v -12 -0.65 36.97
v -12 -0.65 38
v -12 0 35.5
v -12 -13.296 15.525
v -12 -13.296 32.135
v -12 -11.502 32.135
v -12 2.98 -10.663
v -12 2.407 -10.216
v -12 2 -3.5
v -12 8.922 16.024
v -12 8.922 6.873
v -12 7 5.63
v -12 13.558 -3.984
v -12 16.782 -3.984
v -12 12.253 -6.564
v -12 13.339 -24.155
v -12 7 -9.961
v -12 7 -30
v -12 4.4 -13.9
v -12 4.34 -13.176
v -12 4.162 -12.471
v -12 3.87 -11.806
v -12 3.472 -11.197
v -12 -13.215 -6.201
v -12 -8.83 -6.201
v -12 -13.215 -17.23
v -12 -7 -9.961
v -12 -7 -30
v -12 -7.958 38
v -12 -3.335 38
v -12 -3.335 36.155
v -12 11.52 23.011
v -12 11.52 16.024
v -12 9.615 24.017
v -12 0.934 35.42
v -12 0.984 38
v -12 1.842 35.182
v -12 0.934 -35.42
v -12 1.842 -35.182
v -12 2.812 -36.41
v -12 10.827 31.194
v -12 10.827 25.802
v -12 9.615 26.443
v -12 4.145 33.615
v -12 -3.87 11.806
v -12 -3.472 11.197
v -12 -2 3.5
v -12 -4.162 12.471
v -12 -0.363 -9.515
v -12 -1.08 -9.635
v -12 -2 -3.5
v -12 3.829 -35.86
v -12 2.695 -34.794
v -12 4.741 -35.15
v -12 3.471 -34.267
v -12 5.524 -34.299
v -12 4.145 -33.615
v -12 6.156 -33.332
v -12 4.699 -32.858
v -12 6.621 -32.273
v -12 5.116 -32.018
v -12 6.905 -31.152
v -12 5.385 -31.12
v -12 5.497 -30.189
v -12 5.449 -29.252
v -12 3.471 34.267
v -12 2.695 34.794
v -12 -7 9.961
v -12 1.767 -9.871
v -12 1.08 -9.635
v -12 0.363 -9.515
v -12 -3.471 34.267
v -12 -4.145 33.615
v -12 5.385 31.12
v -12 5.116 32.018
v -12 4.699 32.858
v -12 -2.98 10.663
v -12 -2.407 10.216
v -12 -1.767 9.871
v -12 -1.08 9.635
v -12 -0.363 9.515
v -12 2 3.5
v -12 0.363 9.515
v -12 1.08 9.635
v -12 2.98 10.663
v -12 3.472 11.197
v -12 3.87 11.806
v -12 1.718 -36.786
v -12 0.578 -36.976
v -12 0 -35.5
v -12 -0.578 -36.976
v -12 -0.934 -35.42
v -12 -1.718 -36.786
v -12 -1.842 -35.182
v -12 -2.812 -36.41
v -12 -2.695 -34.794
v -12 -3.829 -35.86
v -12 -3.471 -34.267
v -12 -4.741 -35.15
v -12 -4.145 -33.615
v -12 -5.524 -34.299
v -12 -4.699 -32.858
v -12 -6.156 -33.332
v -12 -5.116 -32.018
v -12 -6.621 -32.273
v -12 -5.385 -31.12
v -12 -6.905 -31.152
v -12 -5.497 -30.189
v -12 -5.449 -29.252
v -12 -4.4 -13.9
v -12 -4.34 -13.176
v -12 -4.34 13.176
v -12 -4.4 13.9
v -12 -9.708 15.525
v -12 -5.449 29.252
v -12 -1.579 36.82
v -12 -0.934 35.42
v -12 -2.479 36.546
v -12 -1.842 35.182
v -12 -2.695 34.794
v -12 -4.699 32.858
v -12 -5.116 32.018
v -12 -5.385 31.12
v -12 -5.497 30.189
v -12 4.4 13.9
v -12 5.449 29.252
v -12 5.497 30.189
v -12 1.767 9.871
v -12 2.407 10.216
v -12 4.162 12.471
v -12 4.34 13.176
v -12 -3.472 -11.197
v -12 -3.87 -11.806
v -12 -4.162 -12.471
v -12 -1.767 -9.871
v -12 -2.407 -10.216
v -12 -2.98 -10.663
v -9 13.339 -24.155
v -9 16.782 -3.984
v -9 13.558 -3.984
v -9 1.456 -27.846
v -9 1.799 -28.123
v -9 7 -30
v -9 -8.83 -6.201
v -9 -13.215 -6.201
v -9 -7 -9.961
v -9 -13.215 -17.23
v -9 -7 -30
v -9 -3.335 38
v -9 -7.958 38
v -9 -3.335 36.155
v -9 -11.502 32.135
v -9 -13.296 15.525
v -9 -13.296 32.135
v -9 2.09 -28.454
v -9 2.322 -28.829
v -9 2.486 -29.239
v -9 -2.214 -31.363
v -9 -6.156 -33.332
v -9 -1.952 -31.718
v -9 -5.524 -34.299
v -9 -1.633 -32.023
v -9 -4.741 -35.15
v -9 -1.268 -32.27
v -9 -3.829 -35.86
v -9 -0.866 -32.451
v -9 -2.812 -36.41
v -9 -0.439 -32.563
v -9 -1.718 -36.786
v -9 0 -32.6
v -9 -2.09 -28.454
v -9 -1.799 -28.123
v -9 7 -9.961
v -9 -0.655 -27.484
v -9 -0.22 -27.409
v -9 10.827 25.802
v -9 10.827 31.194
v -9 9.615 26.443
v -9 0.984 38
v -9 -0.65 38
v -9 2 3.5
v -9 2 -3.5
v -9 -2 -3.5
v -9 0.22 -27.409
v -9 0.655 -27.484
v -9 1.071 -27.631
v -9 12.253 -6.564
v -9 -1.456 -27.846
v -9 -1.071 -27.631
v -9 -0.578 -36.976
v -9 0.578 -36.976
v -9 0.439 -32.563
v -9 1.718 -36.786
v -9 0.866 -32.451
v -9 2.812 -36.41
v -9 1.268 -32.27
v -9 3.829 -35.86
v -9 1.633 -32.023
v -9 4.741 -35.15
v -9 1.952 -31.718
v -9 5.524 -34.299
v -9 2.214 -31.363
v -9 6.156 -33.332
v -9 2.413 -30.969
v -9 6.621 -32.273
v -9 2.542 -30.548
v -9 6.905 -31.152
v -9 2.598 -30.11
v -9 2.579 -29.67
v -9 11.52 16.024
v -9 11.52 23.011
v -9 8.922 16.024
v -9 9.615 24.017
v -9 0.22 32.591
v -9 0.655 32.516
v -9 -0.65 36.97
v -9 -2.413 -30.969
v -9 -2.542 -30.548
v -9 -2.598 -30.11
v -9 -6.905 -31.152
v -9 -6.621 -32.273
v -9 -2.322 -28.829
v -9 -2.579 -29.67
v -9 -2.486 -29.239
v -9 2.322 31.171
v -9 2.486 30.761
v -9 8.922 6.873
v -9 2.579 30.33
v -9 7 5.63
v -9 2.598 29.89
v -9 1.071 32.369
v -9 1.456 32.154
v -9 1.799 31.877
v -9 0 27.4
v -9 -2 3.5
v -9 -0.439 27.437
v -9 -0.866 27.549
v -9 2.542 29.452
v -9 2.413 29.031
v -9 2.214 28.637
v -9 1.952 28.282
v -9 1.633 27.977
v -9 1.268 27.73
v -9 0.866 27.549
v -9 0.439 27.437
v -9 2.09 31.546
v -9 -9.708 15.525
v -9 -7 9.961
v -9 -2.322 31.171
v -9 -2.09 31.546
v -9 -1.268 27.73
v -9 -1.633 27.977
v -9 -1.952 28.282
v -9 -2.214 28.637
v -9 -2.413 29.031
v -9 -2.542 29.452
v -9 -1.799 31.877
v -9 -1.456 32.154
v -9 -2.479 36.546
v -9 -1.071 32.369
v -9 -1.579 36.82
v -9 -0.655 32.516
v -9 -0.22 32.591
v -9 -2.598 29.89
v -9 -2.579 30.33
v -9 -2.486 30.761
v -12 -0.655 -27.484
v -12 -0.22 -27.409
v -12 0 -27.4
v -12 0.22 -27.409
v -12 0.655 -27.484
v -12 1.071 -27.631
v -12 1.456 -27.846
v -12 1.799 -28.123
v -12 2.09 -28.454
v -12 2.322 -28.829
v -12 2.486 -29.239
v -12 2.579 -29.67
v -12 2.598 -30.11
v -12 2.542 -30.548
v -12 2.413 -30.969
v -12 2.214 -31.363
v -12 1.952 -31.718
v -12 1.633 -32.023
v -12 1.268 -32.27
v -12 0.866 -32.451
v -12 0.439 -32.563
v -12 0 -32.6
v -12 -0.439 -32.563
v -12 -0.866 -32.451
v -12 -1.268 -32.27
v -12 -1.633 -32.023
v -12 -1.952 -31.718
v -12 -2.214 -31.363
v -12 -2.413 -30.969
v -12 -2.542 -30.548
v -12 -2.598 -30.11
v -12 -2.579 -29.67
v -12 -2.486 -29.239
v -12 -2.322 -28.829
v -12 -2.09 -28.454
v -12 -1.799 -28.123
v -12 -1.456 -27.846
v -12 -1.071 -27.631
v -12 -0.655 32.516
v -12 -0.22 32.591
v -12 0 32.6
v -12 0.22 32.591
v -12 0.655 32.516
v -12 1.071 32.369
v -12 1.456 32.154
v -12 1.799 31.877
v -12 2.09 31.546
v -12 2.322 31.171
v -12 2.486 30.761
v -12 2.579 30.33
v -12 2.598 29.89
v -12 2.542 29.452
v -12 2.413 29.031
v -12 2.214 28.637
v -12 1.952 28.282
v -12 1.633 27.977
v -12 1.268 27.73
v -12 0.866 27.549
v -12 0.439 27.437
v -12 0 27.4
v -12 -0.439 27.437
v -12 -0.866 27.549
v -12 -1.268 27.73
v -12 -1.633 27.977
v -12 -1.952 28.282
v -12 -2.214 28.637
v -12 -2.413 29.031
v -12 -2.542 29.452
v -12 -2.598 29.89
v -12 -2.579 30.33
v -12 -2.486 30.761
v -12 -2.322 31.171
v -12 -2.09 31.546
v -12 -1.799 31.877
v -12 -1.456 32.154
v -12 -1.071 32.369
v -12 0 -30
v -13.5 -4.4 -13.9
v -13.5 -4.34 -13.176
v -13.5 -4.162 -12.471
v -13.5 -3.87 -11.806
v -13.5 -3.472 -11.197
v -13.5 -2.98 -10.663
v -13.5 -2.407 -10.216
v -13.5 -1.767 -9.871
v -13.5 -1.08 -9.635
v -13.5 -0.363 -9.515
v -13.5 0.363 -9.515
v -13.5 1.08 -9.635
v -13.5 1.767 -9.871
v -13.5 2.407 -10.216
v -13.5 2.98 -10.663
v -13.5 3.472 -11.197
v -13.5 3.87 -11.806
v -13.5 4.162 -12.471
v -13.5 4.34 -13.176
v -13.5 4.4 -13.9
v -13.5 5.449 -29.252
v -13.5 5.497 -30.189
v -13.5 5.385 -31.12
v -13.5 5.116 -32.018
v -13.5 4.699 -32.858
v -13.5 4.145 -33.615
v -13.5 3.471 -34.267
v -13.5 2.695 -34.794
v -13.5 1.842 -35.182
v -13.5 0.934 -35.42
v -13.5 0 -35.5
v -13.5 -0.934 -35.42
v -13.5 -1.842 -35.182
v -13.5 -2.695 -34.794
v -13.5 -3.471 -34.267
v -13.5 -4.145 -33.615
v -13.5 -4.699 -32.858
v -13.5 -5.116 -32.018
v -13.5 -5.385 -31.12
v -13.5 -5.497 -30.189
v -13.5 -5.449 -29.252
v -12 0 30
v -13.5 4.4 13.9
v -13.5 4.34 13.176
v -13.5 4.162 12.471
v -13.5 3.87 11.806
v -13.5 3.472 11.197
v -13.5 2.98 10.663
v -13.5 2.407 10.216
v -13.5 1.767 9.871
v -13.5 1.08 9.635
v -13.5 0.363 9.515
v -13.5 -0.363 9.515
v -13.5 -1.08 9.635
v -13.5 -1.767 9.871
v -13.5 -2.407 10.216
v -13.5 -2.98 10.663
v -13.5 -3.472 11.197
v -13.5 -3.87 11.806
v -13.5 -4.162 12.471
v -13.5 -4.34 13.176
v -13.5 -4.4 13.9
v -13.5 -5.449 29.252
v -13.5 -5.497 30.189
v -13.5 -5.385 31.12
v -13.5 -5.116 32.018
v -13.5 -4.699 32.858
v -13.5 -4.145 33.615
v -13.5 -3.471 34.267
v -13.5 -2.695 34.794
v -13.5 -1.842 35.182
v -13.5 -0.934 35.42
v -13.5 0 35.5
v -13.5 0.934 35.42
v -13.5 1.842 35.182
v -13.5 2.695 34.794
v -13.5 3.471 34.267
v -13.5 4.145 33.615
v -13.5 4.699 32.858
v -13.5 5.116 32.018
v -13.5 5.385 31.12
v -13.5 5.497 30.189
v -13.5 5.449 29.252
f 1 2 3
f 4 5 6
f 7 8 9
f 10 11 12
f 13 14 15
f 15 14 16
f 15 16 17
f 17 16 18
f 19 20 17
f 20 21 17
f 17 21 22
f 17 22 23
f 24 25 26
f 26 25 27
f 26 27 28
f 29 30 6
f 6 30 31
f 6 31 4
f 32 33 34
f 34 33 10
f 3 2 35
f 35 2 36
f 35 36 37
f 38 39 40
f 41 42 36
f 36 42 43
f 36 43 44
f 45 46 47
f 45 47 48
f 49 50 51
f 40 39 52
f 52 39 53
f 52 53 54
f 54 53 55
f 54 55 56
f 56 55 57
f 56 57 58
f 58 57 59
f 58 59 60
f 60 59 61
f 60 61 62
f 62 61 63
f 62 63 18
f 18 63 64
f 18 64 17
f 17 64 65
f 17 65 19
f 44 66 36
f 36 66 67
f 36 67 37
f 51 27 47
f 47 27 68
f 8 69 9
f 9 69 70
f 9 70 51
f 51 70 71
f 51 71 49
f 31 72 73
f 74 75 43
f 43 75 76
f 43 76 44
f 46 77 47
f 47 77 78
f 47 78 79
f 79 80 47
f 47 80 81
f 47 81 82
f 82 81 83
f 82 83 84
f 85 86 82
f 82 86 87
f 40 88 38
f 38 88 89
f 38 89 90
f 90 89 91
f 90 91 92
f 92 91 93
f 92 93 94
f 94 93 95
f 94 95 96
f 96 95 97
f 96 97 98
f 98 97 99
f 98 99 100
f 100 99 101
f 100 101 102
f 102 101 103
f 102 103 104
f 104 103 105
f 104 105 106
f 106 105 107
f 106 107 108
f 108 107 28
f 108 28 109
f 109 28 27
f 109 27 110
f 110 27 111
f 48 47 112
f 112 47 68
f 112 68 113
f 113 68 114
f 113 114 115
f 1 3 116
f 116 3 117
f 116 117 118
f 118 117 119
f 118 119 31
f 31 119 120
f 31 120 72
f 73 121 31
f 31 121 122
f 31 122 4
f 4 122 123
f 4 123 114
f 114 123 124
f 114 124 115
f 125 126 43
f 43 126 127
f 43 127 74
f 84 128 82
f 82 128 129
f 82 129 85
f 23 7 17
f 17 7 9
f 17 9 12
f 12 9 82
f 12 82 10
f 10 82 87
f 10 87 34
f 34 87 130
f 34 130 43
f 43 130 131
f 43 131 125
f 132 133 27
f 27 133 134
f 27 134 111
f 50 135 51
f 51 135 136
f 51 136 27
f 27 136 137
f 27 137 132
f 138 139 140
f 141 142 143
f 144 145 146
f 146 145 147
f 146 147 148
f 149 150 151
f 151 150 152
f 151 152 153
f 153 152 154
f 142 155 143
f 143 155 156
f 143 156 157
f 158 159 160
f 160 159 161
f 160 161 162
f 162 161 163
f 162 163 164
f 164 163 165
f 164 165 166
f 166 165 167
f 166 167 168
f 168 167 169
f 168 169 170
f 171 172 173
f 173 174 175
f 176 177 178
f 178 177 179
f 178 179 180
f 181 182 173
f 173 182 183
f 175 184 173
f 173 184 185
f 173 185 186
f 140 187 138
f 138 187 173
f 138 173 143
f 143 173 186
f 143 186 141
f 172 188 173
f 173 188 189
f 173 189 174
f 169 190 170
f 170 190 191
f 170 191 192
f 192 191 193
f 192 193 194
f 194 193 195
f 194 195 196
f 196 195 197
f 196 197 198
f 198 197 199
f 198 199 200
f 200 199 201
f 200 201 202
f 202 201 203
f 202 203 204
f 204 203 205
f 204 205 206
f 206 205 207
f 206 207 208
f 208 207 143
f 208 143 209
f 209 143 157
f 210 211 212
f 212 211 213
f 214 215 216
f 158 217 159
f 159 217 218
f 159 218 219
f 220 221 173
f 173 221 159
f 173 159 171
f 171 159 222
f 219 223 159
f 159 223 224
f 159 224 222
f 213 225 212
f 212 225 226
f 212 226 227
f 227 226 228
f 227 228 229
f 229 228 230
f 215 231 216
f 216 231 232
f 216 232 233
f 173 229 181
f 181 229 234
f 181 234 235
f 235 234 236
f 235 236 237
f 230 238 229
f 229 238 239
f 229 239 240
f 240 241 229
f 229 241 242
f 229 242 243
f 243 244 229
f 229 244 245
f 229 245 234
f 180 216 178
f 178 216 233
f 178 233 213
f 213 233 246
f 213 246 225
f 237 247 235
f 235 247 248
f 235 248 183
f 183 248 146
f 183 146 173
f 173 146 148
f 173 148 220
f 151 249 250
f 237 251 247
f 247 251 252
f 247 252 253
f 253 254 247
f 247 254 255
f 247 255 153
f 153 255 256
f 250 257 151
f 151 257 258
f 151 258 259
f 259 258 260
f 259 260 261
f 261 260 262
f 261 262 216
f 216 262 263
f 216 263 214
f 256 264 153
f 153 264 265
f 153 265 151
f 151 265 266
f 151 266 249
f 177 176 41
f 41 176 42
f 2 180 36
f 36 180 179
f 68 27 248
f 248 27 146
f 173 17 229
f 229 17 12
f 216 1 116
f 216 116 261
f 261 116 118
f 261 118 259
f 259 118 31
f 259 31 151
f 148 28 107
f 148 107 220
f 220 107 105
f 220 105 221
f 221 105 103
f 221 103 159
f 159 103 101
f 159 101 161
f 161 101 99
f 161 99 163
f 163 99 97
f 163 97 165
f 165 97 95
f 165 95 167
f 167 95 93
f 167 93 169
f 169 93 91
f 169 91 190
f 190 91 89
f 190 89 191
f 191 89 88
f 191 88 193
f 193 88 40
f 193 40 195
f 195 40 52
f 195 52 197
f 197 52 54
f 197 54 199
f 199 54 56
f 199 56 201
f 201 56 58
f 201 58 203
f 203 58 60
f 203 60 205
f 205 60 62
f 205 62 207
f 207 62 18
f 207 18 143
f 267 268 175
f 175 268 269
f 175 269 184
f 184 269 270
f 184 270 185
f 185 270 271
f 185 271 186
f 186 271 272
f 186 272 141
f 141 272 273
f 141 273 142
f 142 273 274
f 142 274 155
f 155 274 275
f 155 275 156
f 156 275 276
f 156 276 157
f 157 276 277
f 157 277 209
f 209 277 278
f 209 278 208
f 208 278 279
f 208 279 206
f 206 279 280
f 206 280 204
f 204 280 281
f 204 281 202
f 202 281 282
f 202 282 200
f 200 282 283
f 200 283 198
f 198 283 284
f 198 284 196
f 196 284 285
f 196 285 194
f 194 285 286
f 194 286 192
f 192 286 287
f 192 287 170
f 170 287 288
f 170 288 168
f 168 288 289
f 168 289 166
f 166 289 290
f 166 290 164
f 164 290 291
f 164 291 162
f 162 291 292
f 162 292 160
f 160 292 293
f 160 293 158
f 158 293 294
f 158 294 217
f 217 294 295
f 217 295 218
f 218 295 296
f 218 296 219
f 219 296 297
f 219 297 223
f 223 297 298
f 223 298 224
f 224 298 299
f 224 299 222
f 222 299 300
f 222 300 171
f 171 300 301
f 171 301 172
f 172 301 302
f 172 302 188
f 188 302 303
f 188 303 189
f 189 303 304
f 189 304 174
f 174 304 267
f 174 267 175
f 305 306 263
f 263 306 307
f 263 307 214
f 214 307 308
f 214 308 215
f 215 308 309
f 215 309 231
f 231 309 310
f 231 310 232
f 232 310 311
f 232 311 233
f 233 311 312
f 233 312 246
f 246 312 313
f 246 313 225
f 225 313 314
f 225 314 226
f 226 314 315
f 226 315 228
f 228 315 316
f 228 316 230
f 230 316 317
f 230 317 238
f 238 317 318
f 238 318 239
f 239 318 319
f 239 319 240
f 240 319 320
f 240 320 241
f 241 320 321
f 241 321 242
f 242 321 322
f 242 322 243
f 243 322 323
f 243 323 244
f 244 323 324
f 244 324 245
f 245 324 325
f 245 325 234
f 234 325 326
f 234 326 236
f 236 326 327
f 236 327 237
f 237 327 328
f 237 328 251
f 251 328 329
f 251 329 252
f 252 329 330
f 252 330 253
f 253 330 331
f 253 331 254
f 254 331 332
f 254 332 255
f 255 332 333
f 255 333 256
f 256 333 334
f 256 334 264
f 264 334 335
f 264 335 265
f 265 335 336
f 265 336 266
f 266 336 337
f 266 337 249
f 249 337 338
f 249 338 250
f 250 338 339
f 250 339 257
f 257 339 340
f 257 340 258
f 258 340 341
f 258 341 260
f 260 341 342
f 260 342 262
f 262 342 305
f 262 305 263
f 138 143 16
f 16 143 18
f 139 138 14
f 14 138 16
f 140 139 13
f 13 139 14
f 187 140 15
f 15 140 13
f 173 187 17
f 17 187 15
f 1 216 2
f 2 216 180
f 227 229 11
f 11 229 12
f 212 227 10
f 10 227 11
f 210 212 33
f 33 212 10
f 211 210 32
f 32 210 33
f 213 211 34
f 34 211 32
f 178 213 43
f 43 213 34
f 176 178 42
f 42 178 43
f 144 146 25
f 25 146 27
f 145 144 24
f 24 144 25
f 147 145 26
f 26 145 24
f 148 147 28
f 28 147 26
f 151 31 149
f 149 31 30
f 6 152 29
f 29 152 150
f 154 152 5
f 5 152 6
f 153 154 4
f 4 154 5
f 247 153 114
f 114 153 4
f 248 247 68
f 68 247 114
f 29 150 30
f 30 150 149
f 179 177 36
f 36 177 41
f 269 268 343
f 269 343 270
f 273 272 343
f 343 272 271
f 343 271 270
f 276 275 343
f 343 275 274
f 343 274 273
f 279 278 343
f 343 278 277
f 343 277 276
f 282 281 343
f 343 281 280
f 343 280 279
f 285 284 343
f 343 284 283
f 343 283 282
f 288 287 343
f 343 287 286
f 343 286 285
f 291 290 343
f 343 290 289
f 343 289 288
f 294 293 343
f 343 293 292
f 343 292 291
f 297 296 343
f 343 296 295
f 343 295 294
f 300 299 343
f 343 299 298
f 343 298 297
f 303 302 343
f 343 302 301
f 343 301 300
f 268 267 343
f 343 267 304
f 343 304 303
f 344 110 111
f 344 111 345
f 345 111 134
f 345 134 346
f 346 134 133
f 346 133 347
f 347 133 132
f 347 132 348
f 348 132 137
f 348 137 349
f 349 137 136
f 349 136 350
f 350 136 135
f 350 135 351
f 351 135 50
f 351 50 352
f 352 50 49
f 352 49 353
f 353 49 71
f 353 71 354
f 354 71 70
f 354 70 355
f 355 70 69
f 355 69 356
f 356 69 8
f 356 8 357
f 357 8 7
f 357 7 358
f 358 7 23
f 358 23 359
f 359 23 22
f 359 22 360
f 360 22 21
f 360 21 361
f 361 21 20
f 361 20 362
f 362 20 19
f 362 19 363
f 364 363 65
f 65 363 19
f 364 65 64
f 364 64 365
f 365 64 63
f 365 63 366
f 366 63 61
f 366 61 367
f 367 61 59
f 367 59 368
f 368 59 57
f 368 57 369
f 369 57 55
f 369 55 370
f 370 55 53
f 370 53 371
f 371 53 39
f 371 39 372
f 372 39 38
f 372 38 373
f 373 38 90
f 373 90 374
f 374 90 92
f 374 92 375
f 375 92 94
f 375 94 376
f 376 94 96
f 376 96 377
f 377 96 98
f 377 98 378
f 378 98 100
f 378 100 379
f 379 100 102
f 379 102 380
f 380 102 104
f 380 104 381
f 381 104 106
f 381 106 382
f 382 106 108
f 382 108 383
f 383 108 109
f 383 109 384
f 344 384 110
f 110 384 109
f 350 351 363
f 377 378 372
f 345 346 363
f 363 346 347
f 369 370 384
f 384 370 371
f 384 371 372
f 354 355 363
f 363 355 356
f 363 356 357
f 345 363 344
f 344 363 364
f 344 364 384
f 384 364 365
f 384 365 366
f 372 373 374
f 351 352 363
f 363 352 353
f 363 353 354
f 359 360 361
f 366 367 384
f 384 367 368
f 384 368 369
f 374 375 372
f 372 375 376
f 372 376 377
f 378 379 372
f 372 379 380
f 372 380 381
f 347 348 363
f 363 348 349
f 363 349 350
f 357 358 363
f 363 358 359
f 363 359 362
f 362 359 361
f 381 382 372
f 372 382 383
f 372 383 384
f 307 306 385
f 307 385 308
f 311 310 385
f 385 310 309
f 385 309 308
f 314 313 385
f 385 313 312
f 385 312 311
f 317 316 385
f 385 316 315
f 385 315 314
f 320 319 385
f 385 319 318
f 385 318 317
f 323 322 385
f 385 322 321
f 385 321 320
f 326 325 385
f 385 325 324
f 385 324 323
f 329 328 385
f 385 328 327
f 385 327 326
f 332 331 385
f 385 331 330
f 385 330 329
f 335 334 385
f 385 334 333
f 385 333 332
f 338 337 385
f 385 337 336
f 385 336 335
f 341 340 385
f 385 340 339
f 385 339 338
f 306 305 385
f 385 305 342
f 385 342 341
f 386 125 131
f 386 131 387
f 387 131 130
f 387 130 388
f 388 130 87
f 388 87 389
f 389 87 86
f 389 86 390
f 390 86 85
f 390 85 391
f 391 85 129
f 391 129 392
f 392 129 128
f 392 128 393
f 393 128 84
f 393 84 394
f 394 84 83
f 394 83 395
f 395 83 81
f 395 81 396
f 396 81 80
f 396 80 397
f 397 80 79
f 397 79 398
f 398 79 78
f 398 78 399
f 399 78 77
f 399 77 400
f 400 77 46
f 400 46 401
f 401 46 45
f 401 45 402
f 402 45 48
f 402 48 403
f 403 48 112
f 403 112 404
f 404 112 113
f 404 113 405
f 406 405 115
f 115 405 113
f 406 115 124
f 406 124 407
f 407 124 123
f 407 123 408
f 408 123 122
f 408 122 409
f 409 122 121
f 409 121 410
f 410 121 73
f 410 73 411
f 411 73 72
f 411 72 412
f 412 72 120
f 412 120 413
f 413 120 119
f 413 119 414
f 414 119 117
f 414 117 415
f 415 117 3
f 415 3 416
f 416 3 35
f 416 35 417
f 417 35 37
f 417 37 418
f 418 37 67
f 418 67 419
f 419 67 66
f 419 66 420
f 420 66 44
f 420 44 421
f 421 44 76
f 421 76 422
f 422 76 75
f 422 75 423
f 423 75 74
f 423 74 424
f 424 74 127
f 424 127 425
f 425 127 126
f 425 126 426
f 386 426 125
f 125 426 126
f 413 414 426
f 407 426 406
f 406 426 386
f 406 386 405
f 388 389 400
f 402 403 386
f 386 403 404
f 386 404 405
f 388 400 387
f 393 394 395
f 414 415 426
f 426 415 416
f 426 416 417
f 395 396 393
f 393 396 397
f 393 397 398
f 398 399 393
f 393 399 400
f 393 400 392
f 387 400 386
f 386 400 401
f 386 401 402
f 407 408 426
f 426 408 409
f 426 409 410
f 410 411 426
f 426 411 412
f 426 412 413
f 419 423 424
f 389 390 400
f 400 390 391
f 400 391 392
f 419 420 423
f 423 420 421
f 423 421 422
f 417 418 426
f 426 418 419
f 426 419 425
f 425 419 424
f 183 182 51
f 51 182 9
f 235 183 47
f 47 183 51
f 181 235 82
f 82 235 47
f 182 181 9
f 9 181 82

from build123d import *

# Parameters (mm, degrees)
BOSS_EXTRUDE1_DEPTH      = 7
BOSS_EXTRUDE1_DEPTH_BACK = 7
SKETCH3_R                = 7
BOSS_EXTRUDE2_DEPTH      = 3
CUT_EXTRUDE1_DEPTH       = 23
CUT_EXTRUDE1_DEPTH_BACK  = 23
SKETCH4_R                = 2.6
BOSS_EXTRUDE3_DEPTH      = 3
CUT_EXTRUDE2_DEPTH       = 20
CUT_EXTRUDE2_DEPTH_BACK  = 30
SKETCH6_W                = 36.146068324
SKETCH6_H                = 79.881394618
SKETCH7_W                = 6
SKETCH7_H                = 2
BOSS_EXTRUDE4_DEPTH      = 25
SKETCH8_R                = 1.5
CUT_EXTRUDE3_DEPTH       = 23
SKETCH9_W                = 6
SKETCH9_H                = 2
BOSS_EXTRUDE5_DEPTH      = 11
SKETCH10_W               = 10.612588882
SKETCH10_H               = 43.057143259
CUT_EXTRUDE4_DEPTH       = 10
CUT_EXTRUDE5_DEPTH       = 22
BOSS_EXTRUDE6_DEPTH      = 1.5
SKETCH17_W               = 50
SKETCH17_H               = 12
CUT_EXTRUDE7_DEPTH       = 22
SKETCH18_W               = 7
SKETCH18_H               = 4
CUT_EXTRUDE8_DEPTH       = 22


with BuildPart() as part:
    # Sketch2 → Boss-Extrude1 (new, two sides: drawn at the far end of the back side and taken through both)
    with BuildSketch(Plane(origin=(0, 0, 0), x_dir=(1, 0, 0), z_dir=(0, 1, 0)).offset(-BOSS_EXTRUDE1_DEPTH_BACK)):
        Polygon((12, 30), (12, -30), (9, -30), (9, -1.5), (-9, -1.5), (-9, -30), (-12, -30), (-12, 30), (-9, 30), (-9, 1.5), (9, 1.5), (9, 30), align=None)
    extrude(amount=BOSS_EXTRUDE1_DEPTH + BOSS_EXTRUDE1_DEPTH_BACK)

    # Sketch3 → Boss-Extrude2 (add)
    with BuildSketch(Plane(origin=(12, 0, 0), x_dir=(0, 0, -1), z_dir=(1, 0, 0))):
        with Locations((-30, 0)):
            Circle(SKETCH3_R)
        with Locations((30, 0)):
            Circle(SKETCH3_R)
    boss_extrude2 = extrude(amount=-BOSS_EXTRUDE2_DEPTH)

    # Mirror1: Boss-Extrude2 across plane
    add(boss_extrude2.mirror(Plane.ZY))

    # Sketch4 → Cut-Extrude1 (cut, two sides: drawn at the far end of the back side and taken through both)
    with BuildSketch(Plane.ZY.offset(-CUT_EXTRUDE1_DEPTH_BACK)):
        with Locations((-30, 0)):
            Circle(SKETCH4_R)
        with Locations((30, 0)):
            Circle(SKETCH4_R)
    extrude(amount=CUT_EXTRUDE1_DEPTH + CUT_EXTRUDE1_DEPTH_BACK, mode=Mode.SUBTRACT)

    # Sketch5 → Boss-Extrude3 (add)
    with BuildSketch(Plane.ZY.offset(12)):
        Polygon((-30, 7), (-24.155374342, 13.339180653), (-3.984430585, 16.782248387), (-3.984430585, 13.558363221), (-6.564031008, 12.252853794), (-9.961076462, 7), align=None)
        Polygon((5.630173652, 7), (6.872920148, 8.921659787), (16.024340395, 8.921659787), (16.024340395, 11.520201473), (23.010764714, 11.520201473), (24.017423371, 9.614604237), (26.442728945, 9.614604237), (25.802127981, 10.827257024), (33.625376893, 10.827257024), (39.584451678, 2.208760433), (39.584451678, -0.649635421), (35.450408088, -0.649635421), (35.450408088, 3.248177107), (30.561687085, 6.409736158), (5.630173652, 6.409736158), align=None)
        Polygon((-30, -7), (-17.229678236, -13.21512033), (-6.200995871, -13.21512033), (-6.200995871, -8.829973728), (-9.961076462, -7), align=None)
        Polygon((9.961076462, -7), (15.524820582, -9.707789187), (15.524820582, -13.295871625), (32.135298846, -13.295871625), (32.135298846, -11.501830406), (39.584451678, -7), (39.584451678, -3.334795163), (35.450408088, -3.334795163), (31.744983073, -5.574136385), (9.961076462, -5.574136385), align=None)
    boss_extrude3 = extrude(amount=-BOSS_EXTRUDE3_DEPTH)

    # Mirror2: Boss-Extrude3 across plane
    add(boss_extrude3.mirror(Plane.ZY))

    # Sketch6 → Cut-Extrude2 (cut, two sides: drawn at the far end of the back side and taken through both)
    with BuildSketch(Plane(origin=(0, 7, 0), x_dir=(1, 0, 0), z_dir=(0, 1, 0)).offset(-CUT_EXTRUDE2_DEPTH_BACK)):
        with Locations((9.073034162, -2.940697309)):
            Rectangle(SKETCH6_W, SKETCH6_H)
    extrude(amount=CUT_EXTRUDE2_DEPTH + CUT_EXTRUDE2_DEPTH_BACK, mode=Mode.SUBTRACT)

    # Sketch7 → Boss-Extrude4 (add)
    with BuildSketch(Plane(origin=(-9, 0, 0), x_dir=(0, 0, -1), z_dir=(1, 0, 0))):
        Rectangle(SKETCH7_W, SKETCH7_H)
    extrude(amount=BOSS_EXTRUDE4_DEPTH)

    # Sketch8 → Cut-Extrude3 (cut)
    with BuildSketch(Plane(origin=(0, 1, 0), x_dir=(1, 0, 0), z_dir=(0, 1, 0))):
        with Locations((13, 0)):
            Circle(SKETCH8_R)
        with Locations((5, 0)):
            Circle(SKETCH8_R)
    extrude(amount=-CUT_EXTRUDE3_DEPTH, mode=Mode.SUBTRACT)

    # Sketch9 → Boss-Extrude5 (add)
    with BuildSketch(Plane(origin=(-9, 0, 0), x_dir=(0, 0, -1), z_dir=(1, 0, 0))):
        with Locations((0, -2)):
            Rectangle(SKETCH9_W, SKETCH9_H)
    extrude(amount=BOSS_EXTRUDE5_DEPTH)

    # Sketch10 → Cut-Extrude4 (cut)
    with BuildSketch(Plane(origin=(-9, 0, 0), x_dir=(0, 0, -1), z_dir=(1, 0, 0))):
        with Locations((-43.306294441, -0.681634791)):
            Rectangle(SKETCH10_W, SKETCH10_H)
    extrude(amount=-CUT_EXTRUDE4_DEPTH, mode=Mode.SUBTRACT)

    # Sketch11 → Cut-Extrude5 (cut)
    with BuildSketch(Plane.ZY):
        Polygon((39.991694919, -1.896890181), (29.115063305, 13.833775376), (39.991694919, 13.833775376), align=None)
    extrude(amount=CUT_EXTRUDE5_DEPTH, mode=Mode.SUBTRACT)

    # Sketch12 → Boss-Extrude6 (add)
    with BuildSketch(Plane.ZY.offset(12)):
        with BuildLine():
            Line((-29.251939175, 5.448890254), (-13.9, 4.4))
            ThreePointArc((-13.9, 4.4), (-9.5, 0), (-13.9, -4.4))
            Line((-13.9, -4.4), (-29.251939175, -5.448890254))
            ThreePointArc((-29.251939175, -5.448890254), (-35.5, 0), (-29.251939175, 5.448890254))
        make_face()
        with BuildLine():
            Line((29.251939175, -5.448890254), (13.9, -4.4))
            ThreePointArc((13.9, -4.4), (9.5, 0), (13.9, 4.4))
            Line((13.9, 4.4), (29.251939175, 5.448890254))
            ThreePointArc((29.251939175, 5.448890254), (35.5, 0), (29.251939175, -5.448890254))
        make_face()
    extrude(amount=BOSS_EXTRUDE6_DEPTH)

    # Sketch17 → Cut-Extrude7 (cut)
    with BuildSketch(Plane(origin=(0, 1, 0), x_dir=(1, 0, 0), z_dir=(0, 1, 0))):
        with Locations((16, 3)):
            Rectangle(SKETCH17_W, SKETCH17_H)
    extrude(amount=-CUT_EXTRUDE7_DEPTH, mode=Mode.SUBTRACT)

    # Sketch18 → Cut-Extrude8 (cut)
    with BuildSketch(Plane(origin=(-9, 0, 0), x_dir=(0, 0, -1), z_dir=(1, 0, 0))):
        Rectangle(SKETCH18_W, SKETCH18_H)
    extrude(amount=-CUT_EXTRUDE8_DEPTH, mode=Mode.SUBTRACT)


solid = part.part
